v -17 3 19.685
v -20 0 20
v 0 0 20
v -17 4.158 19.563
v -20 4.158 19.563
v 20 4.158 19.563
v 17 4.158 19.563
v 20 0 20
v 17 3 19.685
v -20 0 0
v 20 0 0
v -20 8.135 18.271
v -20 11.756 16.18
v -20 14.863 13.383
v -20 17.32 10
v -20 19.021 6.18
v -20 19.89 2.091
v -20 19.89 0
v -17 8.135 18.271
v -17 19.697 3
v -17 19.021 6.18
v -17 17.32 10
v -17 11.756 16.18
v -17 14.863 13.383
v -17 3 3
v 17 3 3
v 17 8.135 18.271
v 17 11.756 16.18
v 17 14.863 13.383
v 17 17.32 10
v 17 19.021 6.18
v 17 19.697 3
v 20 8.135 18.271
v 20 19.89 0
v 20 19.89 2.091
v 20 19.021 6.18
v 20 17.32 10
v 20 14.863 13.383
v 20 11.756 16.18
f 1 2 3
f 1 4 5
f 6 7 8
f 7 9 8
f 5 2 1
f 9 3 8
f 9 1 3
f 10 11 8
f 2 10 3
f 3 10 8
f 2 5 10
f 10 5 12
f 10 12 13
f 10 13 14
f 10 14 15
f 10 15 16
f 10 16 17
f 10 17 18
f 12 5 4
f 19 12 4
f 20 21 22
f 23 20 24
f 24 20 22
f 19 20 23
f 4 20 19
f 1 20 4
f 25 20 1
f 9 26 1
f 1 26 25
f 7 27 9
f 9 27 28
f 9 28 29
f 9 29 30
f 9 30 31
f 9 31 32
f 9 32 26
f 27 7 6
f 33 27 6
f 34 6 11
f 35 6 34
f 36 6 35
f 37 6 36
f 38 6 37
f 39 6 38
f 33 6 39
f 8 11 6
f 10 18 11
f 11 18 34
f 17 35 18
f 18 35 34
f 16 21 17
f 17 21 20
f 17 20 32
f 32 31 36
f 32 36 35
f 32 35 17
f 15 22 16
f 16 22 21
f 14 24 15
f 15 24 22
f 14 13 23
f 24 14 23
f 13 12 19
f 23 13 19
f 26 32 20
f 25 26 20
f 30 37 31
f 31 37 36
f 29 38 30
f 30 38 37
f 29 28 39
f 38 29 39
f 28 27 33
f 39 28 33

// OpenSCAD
module patchy(radius, length, thickness){
	difference(){
		rotate([0, 90, 0])
			cylinder(length, radius, radius, center=true);
		translate([-.5*(length - 2*thickness), thickness, thickness])
			cube([length - 2*thickness, radius, radius]);
		translate([-length, -radius, 0])
			cube([2*length, radius, radius]);
		translate([-length, -radius, -(radius+10)])
			cube([2*length, 2*radius, radius+10]);
	}
}

radius = 20;
length = 40;
thickness = 3;

patchy(radius, length, thickness);
